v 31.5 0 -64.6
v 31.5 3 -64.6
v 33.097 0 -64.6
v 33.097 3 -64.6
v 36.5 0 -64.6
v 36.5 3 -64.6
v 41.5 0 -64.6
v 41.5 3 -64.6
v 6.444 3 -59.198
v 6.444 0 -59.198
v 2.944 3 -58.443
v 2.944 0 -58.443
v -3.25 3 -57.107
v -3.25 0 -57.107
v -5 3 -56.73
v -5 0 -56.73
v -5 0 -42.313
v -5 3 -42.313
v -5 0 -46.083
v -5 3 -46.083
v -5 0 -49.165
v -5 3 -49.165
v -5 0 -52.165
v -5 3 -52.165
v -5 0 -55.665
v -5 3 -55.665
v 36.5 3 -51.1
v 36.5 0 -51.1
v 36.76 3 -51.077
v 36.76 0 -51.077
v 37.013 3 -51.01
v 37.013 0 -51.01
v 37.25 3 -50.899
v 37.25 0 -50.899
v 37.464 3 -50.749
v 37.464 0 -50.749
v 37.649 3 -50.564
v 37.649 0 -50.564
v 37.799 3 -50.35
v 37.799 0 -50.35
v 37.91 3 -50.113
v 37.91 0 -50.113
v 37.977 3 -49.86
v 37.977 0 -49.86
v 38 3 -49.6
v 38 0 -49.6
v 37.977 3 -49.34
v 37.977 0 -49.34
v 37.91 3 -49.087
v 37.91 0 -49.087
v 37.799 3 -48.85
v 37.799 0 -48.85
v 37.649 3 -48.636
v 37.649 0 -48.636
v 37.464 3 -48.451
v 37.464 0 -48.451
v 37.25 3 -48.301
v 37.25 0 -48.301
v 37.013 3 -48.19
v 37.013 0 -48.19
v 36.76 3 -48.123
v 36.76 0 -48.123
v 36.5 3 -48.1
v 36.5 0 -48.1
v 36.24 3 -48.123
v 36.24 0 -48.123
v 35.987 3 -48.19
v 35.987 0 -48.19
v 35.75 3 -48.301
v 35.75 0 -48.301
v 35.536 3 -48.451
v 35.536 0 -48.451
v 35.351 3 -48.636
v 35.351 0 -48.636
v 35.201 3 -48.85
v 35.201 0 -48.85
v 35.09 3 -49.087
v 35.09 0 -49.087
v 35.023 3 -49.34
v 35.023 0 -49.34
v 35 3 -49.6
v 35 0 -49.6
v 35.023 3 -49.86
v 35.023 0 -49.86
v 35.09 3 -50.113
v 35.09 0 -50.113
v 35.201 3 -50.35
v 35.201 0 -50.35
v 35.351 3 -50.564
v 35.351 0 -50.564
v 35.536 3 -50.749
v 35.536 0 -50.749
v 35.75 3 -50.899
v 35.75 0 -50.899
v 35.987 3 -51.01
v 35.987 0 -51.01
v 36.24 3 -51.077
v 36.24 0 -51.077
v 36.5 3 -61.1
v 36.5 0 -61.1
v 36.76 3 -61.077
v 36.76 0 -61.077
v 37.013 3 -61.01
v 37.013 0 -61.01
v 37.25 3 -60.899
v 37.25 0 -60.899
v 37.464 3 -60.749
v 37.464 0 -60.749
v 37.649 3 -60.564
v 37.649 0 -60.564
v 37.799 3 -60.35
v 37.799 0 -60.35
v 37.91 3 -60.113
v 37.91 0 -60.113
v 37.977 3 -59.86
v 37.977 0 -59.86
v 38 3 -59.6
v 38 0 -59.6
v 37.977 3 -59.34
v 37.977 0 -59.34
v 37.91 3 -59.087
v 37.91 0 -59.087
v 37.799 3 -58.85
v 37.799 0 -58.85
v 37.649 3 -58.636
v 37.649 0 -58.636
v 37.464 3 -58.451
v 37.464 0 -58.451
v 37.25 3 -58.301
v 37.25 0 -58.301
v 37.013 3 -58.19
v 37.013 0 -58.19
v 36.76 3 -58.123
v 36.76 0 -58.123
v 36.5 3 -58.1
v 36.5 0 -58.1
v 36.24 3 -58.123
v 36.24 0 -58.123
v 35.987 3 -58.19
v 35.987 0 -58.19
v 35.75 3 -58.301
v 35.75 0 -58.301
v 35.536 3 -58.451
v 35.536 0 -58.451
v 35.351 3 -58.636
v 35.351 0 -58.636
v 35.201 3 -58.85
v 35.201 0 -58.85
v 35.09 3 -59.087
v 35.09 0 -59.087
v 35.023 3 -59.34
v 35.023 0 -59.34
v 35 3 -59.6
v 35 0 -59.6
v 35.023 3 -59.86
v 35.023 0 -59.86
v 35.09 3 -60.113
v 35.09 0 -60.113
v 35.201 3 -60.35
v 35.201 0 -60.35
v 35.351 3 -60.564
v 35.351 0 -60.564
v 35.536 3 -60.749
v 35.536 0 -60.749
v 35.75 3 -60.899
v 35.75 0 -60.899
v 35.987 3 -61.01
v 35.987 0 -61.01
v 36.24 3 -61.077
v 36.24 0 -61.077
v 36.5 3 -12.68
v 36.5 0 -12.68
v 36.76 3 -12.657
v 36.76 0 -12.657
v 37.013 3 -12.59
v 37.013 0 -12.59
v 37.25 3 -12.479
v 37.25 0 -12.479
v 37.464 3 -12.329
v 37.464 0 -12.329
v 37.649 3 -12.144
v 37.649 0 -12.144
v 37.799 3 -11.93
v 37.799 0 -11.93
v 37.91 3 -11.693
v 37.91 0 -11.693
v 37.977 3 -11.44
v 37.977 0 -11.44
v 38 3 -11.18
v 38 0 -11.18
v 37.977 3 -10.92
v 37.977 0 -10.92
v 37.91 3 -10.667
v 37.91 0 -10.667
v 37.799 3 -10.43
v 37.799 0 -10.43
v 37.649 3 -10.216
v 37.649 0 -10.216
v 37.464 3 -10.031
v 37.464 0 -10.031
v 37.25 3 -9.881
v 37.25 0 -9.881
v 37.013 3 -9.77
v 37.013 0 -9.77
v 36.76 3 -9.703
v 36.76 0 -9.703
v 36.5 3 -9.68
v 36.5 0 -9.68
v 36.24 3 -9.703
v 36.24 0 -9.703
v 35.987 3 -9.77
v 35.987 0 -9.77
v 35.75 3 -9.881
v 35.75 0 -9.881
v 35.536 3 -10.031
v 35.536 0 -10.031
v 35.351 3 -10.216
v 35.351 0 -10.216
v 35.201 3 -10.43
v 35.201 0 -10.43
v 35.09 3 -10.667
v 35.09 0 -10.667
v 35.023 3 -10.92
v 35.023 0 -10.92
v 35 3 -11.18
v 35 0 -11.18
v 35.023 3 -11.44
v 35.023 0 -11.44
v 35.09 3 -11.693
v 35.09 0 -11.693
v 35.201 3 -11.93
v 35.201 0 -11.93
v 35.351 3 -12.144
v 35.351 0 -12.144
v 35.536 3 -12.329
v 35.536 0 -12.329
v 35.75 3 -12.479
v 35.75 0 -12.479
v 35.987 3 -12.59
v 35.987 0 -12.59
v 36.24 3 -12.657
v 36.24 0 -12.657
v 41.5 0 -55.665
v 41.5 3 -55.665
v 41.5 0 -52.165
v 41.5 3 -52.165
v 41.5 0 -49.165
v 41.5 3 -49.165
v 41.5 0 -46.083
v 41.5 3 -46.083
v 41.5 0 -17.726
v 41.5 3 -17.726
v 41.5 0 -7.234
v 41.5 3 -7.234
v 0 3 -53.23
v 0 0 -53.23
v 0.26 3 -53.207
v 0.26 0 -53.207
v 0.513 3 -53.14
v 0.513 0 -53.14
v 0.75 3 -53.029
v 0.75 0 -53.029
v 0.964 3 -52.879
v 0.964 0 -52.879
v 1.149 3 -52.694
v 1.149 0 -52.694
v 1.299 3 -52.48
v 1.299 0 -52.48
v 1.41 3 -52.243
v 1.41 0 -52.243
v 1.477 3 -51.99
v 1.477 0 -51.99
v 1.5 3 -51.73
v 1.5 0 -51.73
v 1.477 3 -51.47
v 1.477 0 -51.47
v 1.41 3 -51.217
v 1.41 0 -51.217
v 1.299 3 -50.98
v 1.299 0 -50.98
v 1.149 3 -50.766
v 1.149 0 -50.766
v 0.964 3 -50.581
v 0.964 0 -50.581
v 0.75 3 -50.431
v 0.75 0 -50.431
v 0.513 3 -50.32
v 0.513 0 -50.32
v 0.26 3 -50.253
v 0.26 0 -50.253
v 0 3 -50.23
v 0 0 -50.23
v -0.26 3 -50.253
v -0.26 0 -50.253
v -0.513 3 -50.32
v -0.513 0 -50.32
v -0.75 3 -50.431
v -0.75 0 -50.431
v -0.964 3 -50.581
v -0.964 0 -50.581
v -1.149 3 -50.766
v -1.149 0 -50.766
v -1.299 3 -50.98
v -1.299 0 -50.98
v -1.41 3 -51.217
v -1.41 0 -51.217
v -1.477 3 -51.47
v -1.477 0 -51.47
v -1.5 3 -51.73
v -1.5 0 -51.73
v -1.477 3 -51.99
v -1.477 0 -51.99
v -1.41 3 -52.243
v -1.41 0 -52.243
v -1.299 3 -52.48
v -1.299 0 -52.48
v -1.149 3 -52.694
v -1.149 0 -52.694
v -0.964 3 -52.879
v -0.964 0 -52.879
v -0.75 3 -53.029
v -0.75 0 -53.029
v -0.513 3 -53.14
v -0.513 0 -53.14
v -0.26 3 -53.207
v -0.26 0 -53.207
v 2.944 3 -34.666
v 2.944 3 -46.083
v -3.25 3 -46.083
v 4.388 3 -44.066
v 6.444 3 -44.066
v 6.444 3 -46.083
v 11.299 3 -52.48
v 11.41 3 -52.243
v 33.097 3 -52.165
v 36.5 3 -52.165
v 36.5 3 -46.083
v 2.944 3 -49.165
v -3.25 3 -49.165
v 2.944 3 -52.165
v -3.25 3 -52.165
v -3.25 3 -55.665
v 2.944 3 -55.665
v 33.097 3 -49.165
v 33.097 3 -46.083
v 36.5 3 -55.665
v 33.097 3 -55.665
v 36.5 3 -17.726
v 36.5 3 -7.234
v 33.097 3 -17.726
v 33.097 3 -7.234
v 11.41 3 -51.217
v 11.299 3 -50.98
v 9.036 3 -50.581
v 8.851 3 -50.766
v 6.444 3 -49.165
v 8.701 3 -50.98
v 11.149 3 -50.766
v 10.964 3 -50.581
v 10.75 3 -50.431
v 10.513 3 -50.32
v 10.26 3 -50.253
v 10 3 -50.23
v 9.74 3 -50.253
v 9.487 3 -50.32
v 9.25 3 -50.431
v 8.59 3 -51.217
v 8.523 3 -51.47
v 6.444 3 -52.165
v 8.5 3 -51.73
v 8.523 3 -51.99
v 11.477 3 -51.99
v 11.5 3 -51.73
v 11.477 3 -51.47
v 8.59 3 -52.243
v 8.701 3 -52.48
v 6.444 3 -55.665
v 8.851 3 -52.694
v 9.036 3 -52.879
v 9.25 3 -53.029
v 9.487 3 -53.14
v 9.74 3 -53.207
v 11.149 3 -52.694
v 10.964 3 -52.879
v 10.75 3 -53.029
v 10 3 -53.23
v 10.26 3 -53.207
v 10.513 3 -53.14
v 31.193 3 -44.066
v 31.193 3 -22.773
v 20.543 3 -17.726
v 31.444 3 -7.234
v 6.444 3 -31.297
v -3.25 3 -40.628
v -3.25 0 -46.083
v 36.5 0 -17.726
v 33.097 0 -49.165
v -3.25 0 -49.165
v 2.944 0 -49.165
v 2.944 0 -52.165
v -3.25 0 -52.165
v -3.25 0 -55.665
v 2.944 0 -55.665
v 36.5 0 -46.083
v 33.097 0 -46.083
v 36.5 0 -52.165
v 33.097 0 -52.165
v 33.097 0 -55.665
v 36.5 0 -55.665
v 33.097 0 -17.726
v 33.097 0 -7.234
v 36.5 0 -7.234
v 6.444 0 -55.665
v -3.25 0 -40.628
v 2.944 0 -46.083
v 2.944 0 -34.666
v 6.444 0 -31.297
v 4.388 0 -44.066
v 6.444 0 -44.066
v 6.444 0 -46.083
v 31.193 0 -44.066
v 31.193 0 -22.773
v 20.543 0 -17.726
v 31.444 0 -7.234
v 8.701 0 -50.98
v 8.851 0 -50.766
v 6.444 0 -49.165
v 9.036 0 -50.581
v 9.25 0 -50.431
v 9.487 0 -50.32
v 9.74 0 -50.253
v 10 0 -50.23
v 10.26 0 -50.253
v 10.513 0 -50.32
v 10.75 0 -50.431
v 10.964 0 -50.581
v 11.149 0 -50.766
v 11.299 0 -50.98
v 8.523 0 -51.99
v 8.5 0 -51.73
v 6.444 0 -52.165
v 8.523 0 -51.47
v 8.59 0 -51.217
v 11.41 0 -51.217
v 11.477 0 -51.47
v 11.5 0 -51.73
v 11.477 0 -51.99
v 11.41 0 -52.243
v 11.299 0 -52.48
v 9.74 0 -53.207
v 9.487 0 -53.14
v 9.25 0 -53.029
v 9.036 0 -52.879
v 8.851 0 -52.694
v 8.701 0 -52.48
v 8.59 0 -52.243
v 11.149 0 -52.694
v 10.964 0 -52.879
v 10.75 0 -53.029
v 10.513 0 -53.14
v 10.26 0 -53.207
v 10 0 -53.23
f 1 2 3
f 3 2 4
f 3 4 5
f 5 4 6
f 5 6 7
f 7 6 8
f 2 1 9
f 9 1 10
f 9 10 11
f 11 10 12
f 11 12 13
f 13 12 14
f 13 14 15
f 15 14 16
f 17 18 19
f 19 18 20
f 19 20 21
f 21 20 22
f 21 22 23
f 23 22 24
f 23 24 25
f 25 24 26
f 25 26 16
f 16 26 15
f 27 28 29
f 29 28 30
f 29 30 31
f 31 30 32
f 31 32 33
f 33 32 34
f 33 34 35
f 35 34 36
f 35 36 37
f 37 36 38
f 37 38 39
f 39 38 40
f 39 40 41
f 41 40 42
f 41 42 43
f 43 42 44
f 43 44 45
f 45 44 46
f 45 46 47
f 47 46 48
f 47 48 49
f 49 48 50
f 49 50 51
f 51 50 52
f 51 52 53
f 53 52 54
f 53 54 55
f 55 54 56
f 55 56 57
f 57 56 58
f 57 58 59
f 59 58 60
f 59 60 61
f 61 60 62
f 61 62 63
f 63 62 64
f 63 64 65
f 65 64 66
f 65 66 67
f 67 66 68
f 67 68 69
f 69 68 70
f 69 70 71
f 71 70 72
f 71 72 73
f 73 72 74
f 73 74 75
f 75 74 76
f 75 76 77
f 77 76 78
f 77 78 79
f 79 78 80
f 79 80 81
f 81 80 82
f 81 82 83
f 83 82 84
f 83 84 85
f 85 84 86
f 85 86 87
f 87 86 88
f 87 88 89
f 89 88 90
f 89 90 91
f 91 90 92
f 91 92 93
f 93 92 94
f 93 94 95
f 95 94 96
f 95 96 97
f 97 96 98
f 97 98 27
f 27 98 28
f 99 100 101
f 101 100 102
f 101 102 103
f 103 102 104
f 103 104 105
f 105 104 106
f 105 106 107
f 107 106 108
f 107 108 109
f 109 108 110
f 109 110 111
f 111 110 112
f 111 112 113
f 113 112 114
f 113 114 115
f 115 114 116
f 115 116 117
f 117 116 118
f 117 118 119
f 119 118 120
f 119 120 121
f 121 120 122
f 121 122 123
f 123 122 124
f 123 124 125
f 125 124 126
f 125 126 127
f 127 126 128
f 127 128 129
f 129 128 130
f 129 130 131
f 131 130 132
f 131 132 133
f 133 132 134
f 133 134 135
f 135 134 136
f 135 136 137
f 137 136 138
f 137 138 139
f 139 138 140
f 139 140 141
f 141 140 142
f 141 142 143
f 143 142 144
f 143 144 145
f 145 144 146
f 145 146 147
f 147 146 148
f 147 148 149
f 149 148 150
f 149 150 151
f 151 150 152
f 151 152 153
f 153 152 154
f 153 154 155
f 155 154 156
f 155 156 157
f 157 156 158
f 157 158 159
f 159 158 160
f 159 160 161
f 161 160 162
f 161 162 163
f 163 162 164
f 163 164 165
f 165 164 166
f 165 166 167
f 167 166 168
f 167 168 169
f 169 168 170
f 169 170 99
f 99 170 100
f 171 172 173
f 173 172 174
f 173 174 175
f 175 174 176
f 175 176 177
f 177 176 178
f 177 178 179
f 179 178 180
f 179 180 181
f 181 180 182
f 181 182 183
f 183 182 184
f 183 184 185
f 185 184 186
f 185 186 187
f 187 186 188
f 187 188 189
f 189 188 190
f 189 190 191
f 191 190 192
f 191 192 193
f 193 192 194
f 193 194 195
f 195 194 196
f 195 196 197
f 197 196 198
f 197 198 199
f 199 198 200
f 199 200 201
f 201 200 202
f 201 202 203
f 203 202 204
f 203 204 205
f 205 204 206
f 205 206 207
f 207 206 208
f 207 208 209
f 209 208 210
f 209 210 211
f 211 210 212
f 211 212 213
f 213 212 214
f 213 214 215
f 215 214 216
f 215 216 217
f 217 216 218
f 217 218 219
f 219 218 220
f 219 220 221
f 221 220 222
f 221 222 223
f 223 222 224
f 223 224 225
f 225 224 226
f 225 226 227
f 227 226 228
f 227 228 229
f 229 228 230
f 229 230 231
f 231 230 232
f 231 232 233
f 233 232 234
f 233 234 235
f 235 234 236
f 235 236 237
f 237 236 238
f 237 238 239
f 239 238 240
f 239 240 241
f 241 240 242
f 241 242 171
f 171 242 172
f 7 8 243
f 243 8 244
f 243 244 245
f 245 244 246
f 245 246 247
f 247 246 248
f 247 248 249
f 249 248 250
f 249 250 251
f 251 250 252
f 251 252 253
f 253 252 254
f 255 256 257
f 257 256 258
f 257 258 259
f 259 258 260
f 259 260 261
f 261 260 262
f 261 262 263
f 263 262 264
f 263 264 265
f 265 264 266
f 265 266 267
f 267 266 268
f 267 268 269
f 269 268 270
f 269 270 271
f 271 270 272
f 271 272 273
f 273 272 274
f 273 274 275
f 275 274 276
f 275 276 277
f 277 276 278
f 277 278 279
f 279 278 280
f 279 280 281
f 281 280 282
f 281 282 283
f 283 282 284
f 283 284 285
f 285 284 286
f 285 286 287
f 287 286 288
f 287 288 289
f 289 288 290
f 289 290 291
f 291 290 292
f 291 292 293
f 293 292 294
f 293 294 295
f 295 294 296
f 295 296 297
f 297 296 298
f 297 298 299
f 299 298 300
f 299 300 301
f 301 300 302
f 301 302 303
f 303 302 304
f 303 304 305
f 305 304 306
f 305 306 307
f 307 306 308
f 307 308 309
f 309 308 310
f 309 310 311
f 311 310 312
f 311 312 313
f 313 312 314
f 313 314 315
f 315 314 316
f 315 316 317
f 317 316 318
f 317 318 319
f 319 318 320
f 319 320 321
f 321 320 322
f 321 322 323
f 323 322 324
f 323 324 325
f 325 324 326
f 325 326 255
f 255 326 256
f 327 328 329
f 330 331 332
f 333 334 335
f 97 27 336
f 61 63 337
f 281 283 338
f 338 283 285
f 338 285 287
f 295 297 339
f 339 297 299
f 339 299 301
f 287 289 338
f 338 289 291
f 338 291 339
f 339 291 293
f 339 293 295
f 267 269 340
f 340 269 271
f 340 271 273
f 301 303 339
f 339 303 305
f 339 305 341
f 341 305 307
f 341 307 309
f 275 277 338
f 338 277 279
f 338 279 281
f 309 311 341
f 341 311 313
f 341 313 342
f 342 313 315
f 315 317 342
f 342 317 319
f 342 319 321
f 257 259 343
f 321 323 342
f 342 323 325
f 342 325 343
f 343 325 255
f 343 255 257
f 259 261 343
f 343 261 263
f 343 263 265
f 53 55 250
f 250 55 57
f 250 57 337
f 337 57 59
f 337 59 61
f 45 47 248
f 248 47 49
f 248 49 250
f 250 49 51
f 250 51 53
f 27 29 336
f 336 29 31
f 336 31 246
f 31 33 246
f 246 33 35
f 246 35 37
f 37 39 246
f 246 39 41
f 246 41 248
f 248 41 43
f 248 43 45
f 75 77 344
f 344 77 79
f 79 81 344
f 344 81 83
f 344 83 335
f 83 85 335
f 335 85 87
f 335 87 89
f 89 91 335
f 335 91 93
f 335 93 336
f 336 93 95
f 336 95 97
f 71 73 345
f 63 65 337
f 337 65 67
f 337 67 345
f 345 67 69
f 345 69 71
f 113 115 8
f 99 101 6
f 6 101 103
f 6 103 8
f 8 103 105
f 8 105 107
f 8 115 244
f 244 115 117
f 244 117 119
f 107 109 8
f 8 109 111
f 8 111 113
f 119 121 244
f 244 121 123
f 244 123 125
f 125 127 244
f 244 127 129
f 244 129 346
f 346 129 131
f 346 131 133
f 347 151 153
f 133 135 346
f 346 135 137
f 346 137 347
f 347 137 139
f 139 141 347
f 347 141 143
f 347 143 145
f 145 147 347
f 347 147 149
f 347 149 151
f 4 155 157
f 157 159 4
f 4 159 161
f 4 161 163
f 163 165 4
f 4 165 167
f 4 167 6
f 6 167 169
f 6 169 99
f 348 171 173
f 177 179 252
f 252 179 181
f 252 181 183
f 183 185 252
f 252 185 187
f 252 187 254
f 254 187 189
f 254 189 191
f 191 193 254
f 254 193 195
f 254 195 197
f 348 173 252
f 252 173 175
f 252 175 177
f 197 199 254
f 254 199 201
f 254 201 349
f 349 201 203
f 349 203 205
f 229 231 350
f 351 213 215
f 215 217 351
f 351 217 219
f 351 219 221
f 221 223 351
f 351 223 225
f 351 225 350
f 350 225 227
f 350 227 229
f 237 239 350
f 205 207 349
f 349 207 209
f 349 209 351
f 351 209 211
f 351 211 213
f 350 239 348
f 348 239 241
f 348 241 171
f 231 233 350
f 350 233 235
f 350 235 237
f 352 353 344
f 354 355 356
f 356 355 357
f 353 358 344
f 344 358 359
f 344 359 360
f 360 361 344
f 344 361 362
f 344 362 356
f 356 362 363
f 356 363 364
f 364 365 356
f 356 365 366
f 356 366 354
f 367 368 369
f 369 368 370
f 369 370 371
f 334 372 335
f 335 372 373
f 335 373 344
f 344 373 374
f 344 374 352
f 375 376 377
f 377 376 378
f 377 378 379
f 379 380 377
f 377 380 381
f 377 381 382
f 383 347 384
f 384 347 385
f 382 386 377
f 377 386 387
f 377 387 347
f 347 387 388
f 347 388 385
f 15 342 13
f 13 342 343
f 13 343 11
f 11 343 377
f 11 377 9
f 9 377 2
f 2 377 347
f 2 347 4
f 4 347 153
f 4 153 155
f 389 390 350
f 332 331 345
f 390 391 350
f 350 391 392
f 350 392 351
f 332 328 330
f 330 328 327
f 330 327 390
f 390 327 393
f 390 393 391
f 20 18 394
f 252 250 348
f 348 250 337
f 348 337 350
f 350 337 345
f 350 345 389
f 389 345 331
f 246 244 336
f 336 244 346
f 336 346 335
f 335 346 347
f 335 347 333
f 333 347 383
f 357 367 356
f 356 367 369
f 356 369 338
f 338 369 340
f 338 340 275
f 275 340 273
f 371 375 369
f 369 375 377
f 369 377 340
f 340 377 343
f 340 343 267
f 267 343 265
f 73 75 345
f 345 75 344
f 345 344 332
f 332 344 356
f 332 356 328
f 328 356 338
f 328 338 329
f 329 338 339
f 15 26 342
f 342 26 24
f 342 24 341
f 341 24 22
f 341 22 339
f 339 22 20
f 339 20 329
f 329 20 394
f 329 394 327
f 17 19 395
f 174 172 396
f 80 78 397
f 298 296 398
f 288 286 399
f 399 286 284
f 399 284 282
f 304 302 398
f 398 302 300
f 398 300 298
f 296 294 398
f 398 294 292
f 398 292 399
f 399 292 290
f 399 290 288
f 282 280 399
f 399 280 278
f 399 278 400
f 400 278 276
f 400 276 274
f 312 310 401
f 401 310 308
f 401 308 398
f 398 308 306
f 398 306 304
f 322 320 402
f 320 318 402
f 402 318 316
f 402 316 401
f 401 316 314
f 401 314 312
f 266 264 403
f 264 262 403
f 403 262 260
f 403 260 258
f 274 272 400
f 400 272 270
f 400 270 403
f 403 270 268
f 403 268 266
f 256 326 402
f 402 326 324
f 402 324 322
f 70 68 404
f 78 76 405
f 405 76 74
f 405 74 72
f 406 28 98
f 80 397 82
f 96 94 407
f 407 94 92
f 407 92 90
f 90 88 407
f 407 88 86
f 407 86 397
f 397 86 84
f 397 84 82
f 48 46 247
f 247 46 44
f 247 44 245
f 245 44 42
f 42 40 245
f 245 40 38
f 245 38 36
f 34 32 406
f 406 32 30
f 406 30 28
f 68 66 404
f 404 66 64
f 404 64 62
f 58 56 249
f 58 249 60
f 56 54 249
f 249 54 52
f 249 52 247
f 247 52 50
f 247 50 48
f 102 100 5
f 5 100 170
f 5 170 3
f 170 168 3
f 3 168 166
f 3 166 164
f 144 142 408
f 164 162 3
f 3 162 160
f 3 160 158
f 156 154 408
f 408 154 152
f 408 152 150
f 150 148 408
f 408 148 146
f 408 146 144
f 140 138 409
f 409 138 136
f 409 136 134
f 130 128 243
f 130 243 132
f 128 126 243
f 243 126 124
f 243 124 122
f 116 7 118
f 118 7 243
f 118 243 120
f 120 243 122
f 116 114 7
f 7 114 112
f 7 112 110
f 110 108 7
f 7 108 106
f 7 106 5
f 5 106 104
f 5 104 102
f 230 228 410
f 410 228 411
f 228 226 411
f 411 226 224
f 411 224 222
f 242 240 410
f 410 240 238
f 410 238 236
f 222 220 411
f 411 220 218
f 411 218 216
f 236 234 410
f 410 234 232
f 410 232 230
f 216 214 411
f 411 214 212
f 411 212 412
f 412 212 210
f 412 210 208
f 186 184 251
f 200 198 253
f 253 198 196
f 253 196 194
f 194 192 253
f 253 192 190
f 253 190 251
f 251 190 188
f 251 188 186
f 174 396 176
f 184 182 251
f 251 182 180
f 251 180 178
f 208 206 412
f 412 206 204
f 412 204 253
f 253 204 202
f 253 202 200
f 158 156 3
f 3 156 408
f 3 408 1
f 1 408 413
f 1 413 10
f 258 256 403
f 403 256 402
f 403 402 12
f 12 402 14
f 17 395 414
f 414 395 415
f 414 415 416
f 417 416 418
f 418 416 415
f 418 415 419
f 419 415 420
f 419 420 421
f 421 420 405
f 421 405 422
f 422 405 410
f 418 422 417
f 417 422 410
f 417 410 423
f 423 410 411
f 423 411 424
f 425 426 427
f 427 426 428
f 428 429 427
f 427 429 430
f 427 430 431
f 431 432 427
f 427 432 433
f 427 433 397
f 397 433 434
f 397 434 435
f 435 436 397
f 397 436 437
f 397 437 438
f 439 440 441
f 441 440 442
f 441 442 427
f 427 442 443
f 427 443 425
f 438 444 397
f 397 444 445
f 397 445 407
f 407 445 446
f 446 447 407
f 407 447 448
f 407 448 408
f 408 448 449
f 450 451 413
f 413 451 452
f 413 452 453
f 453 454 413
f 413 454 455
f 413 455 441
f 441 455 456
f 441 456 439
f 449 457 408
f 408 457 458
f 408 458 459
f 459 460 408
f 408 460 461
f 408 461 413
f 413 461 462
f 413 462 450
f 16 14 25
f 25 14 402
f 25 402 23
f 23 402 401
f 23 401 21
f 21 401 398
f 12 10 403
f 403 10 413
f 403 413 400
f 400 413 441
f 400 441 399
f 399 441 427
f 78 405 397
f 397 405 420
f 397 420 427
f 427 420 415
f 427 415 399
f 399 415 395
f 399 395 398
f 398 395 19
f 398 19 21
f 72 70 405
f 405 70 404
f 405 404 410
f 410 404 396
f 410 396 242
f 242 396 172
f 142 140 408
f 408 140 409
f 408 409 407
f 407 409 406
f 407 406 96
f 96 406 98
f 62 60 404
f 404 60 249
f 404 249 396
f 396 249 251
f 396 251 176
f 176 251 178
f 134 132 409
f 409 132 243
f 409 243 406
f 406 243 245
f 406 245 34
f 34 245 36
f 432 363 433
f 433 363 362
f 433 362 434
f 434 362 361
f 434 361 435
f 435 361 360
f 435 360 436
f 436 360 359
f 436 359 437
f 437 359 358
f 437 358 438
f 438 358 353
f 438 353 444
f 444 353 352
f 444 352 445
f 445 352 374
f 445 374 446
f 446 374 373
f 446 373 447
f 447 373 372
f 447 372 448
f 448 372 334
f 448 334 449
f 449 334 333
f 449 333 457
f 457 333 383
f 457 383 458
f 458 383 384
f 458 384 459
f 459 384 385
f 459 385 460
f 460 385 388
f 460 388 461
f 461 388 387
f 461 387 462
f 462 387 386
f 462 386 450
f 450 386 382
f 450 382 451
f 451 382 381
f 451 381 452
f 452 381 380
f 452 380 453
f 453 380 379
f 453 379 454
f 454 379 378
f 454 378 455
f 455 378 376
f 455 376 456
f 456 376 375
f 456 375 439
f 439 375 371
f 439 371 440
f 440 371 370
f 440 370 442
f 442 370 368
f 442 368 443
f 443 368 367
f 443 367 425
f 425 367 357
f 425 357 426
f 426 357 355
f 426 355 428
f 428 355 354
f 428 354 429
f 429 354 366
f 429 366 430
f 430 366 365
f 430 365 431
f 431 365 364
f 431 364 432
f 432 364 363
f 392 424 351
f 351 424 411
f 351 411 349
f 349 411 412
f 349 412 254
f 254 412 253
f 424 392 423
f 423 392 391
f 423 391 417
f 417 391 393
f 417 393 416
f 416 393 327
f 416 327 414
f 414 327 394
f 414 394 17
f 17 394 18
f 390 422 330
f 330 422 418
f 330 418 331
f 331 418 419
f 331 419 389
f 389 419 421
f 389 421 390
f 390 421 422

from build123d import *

# Parameters (mm, degrees)
SKETCH1_R           = 1.5
BOSS_EXTRUDE1_DEPTH = 3
SKETCH4_R           = 1.5
CUT_EXTRUDE2_DEPTH  = 7
SKETCH5_W           = 46.5
SKETCH5_H           = 2
CUT_EXTRUDE3_DEPTH  = 7
CUT_EXTRUDE4_DEPTH  = 7
CUT_EXTRUDE5_DEPTH  = 7


with BuildPart() as part:
    # Sketch1 → Boss-Extrude1 (new body)
    with BuildSketch(Plane(origin=(0, 0, 0), x_dir=(1, 0, 0), z_dir=(0, 1, 0))):
        Polygon((5, 16.666723622), (5, 56.73), (-5, 56.73), (-5, 5.234024539), (5, 5.234024539), (31.5, 5.234024539), (41.5, 5.234024539), (41.5, 64.6), (31.5, 64.6), (31.5, 54.48), (31.5, 16.666723622), align=None)
        with Locations((0, 10.18)):
            Circle(SKETCH1_R, mode=Mode.SUBTRACT)
        with Locations((36.5, 11.18)):
            Circle(SKETCH1_R, mode=Mode.SUBTRACT)
        with Locations((0, 51.73)):
            Circle(SKETCH1_R, mode=Mode.SUBTRACT)
        with Locations((36.5, 49.6)):
            Circle(SKETCH1_R, mode=Mode.SUBTRACT)
        with Locations((36.5, 59.6)):
            Circle(SKETCH1_R, mode=Mode.SUBTRACT)
        Polygon((-5, 56.73), (5, 56.73), (31.5, 54.48), (31.5, 64.6), align=None)
        Polygon((31.5, 54.48), (5, 56.73), (5, 16.666723622), (31.5, 16.666723622), align=None)
    extrude(amount=BOSS_EXTRUDE1_DEPTH)

    # Sketch4 → Cut-Extrude2 (cut)
    with BuildSketch(Plane(origin=(0, 3, 0), x_dir=(1, 0, 0), z_dir=(0, 1, 0))):
        with Locations((10, 51.73)):
            Circle(SKETCH4_R)
    extrude(amount=-CUT_EXTRUDE2_DEPTH, mode=Mode.SUBTRACT)

    # Sketch5 → Cut-Extrude3 (cut)
    with BuildSketch(Plane(origin=(0, 3, 0), x_dir=(1, 0, 0), z_dir=(0, 1, 0))):
        with Locations((18.25, 6.234024539)):
            Rectangle(SKETCH5_W, SKETCH5_H)
    extrude(amount=-CUT_EXTRUDE3_DEPTH, mode=Mode.SUBTRACT)

    # Sketch6 → Cut-Extrude4 (cut)
    with BuildSketch(Plane(origin=(0, 3, 0), x_dir=(1, 0, 0), z_dir=(0, 1, 0))):
        Polygon((31.443621834, 7.234024539), (-5, 42.312799573), (-5, 7.234024539), align=None)
    extrude(amount=-CUT_EXTRUDE4_DEPTH, mode=Mode.SUBTRACT)

    # Sketch7 → Cut-Extrude5 (cut)
    with BuildSketch(Plane(origin=(0, 3, 0), x_dir=(1, 0, 0), z_dir=(0, 1, 0))):
        Polygon((31.193110027, 22.772878628), (31.193110027, 44.066382221), (4.388346681, 44.066382221), align=None)
    extrude(amount=-CUT_EXTRUDE5_DEPTH, mode=Mode.SUBTRACT)


solid = part.part
